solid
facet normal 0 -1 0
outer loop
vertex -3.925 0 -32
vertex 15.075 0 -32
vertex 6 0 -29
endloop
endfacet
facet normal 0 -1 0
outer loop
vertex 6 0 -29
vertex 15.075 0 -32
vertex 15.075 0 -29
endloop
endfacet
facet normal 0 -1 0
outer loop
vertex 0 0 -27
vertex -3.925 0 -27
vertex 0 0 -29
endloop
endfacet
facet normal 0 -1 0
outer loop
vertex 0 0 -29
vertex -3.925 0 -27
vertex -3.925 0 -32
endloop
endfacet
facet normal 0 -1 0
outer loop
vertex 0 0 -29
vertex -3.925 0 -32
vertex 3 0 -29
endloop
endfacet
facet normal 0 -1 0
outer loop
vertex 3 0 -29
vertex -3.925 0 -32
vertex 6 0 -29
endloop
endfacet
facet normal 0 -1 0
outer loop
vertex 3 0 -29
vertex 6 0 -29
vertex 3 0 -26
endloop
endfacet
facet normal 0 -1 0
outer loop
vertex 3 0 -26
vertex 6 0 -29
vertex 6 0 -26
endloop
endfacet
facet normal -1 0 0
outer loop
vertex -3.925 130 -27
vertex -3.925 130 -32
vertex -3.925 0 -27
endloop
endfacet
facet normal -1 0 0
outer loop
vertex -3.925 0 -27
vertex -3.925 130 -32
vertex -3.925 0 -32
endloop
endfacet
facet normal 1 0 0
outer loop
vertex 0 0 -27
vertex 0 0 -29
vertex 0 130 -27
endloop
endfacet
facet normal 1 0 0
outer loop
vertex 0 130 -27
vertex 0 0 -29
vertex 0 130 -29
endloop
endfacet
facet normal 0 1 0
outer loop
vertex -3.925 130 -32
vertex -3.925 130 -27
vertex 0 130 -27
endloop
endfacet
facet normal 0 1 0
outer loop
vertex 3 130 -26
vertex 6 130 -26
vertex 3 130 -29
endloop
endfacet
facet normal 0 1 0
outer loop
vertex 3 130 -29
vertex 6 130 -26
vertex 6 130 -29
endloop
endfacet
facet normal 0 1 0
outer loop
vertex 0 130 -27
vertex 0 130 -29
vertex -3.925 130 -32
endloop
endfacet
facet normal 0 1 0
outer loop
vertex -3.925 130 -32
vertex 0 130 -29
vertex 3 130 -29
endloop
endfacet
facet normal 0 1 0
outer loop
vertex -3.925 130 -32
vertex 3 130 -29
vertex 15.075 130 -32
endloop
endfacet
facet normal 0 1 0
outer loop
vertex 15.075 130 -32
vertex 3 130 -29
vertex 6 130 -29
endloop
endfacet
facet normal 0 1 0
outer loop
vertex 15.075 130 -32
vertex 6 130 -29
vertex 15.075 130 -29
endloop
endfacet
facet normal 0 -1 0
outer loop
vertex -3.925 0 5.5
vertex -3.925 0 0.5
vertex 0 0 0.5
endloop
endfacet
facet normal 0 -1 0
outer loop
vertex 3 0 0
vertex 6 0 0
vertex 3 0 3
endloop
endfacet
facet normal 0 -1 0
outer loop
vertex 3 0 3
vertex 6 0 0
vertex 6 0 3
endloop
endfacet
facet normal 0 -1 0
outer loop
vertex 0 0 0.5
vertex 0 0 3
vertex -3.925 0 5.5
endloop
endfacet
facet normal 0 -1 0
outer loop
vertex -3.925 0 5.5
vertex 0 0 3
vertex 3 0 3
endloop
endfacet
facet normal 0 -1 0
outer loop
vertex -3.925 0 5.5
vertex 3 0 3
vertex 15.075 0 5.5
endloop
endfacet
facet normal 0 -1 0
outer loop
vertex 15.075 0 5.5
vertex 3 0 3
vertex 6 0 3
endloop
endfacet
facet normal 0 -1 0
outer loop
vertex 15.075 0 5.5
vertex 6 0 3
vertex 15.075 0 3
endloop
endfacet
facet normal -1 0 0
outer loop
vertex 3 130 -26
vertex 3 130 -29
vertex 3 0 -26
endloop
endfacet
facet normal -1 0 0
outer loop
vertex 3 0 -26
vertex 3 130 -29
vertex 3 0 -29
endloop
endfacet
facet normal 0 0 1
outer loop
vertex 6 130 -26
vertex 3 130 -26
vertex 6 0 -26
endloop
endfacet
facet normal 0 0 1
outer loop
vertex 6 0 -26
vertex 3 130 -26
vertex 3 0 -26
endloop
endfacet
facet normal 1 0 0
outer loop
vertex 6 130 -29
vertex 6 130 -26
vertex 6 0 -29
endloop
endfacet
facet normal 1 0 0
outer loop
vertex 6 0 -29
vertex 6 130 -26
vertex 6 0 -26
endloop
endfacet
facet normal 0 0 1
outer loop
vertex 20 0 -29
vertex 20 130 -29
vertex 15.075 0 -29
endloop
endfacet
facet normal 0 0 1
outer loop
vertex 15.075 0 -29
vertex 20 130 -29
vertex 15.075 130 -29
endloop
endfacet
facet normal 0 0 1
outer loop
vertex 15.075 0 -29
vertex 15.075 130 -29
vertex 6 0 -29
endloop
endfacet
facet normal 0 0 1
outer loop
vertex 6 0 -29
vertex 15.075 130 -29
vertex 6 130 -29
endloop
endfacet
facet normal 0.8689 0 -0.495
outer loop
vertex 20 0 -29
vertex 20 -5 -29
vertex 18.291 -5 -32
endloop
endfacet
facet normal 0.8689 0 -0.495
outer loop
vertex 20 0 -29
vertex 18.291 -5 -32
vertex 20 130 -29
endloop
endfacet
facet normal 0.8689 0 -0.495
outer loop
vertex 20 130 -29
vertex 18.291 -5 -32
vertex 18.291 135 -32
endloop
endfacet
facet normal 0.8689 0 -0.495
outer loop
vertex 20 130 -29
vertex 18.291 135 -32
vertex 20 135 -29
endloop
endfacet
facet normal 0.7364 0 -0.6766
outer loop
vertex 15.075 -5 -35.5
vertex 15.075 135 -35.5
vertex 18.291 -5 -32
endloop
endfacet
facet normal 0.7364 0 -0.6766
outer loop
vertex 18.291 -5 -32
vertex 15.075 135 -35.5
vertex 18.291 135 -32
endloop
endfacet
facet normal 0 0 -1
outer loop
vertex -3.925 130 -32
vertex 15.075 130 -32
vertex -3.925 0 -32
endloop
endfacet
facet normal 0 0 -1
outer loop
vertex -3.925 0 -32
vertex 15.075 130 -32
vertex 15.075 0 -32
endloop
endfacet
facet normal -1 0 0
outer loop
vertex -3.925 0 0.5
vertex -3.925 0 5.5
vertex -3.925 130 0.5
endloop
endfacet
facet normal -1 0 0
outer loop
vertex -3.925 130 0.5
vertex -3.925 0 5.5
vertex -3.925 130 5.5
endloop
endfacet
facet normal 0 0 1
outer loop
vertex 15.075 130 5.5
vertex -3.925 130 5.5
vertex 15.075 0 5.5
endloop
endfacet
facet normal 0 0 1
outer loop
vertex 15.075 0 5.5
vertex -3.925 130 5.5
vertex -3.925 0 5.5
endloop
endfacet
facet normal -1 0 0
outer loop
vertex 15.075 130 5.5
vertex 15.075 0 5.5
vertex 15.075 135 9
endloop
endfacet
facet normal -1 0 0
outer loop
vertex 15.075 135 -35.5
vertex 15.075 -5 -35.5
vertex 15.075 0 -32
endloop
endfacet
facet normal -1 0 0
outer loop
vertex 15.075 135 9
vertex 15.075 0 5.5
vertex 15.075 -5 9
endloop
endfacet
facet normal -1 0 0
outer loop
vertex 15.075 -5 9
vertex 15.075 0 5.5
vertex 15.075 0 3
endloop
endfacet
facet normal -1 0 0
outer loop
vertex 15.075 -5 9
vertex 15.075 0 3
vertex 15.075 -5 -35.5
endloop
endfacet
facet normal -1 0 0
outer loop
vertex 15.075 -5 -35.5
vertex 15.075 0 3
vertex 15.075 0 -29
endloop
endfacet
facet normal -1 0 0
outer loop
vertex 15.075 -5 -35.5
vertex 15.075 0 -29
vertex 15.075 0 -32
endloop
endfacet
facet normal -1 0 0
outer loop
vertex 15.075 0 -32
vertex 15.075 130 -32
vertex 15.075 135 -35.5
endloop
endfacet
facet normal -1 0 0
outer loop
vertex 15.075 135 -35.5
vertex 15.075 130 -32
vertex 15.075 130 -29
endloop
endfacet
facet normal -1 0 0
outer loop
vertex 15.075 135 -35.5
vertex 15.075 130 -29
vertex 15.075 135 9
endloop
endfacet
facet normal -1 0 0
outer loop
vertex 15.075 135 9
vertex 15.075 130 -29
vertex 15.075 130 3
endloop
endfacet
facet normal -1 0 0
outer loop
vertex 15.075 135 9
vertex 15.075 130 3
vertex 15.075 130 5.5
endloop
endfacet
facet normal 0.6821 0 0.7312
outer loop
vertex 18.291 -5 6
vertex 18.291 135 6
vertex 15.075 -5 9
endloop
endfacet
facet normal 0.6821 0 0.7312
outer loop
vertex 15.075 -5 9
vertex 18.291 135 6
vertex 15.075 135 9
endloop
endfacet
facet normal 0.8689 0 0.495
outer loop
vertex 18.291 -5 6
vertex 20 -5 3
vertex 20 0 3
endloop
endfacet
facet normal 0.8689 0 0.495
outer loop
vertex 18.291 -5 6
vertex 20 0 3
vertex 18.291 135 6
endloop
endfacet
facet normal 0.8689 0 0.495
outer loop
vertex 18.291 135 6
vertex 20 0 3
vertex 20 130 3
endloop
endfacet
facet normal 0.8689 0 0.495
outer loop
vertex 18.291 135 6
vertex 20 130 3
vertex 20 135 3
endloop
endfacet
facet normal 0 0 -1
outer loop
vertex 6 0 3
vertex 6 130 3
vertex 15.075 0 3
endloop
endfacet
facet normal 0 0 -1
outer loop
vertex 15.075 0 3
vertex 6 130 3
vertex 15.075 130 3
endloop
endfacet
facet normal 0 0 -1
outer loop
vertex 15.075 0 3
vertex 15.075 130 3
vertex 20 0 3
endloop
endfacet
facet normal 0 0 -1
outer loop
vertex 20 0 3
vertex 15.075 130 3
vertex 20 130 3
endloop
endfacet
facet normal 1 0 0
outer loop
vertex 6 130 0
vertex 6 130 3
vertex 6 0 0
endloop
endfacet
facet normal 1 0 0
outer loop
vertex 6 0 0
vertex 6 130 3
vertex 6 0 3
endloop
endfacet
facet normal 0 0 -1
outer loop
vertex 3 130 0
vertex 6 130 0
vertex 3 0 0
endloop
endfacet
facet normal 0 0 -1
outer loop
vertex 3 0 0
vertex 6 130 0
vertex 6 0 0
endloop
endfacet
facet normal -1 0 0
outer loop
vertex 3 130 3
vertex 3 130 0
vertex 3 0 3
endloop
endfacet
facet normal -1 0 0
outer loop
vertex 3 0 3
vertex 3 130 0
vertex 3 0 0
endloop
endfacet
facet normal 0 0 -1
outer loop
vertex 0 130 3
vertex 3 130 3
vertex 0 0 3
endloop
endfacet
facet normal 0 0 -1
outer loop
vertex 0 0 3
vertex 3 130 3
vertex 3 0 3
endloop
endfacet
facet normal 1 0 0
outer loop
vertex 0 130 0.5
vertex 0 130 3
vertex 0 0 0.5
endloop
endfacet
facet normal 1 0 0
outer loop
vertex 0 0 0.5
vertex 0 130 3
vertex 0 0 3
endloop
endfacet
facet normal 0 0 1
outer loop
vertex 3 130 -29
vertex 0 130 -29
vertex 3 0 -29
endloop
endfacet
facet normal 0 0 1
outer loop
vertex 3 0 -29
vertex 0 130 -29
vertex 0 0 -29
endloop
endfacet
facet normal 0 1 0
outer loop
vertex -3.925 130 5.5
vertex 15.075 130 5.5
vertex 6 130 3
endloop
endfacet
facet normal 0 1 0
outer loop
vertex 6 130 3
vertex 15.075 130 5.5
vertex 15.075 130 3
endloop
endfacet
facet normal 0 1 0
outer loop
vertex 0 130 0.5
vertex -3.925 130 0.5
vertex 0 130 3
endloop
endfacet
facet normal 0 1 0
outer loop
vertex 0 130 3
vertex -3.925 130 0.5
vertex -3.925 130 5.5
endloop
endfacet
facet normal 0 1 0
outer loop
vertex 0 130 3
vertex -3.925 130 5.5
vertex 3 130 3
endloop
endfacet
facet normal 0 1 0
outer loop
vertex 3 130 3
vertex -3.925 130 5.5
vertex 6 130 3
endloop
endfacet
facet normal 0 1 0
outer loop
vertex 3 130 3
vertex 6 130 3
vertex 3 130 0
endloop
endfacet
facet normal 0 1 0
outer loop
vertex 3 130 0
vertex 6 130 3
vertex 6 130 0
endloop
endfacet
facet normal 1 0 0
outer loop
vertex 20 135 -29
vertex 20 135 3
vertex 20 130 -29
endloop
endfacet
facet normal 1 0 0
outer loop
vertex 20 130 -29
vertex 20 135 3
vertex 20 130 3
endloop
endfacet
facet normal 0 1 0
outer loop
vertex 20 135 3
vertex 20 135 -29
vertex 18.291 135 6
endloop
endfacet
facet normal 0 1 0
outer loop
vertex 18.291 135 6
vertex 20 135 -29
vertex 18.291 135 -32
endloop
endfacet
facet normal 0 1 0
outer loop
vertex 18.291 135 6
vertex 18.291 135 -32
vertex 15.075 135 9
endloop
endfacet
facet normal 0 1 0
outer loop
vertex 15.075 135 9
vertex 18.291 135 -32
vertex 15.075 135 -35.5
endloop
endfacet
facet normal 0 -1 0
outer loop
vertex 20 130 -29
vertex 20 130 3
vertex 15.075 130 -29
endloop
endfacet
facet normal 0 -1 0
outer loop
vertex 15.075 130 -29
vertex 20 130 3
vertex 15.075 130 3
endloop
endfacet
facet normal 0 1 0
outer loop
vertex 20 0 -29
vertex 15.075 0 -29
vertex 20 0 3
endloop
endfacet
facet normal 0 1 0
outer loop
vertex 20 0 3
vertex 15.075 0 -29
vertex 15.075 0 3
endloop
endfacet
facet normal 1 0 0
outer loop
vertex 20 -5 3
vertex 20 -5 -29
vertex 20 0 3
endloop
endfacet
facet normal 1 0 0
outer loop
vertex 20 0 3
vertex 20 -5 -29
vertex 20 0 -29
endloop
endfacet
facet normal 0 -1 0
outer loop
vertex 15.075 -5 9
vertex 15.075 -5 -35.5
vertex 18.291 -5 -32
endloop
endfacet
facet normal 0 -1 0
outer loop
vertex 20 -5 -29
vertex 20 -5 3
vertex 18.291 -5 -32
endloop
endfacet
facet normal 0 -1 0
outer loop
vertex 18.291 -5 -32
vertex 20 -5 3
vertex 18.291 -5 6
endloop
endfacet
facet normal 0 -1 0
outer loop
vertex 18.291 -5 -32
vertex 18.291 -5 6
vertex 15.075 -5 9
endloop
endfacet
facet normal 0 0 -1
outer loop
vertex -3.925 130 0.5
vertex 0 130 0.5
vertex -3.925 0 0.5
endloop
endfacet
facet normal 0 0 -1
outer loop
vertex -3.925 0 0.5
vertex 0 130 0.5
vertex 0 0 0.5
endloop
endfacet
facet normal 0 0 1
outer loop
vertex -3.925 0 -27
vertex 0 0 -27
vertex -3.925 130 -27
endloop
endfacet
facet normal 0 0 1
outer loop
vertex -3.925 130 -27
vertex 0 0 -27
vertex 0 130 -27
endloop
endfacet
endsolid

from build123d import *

# Parameters (mm, degrees)
BOSS_EXTRUDE2_DEPTH = 130
BOSS_EXTRUDE3_DEPTH = 5
BOSS_EXTRUDE4_DEPTH = 5
CUT_EXTRUDE2_DEPTH  = 6


with BuildPart() as part:
    # Sketch1 → Boss-Extrude2 (new body)
    with BuildSketch(Plane(origin=(0, 0, 0), x_dir=(1, 0, 0), z_dir=(0, 1, 0))):
        Polygon((0, -3), (0, 29), (3, 29), (3, 26), (6, 26), (6, 29), (20, 29), (18.290622359, 32), (15.075355057, 35.5), (15.075355057, 32), (-3.924644943, 32), (-3.924644943, -5.5), (15.075355057, -5.5), (15.075355057, -9), (18.290622359, -6), (20, -3), (6, -3), (6, 0), (3, 0), (3, -3), align=None)
    extrude(amount=BOSS_EXTRUDE2_DEPTH)

    # Sketch2 → Boss-Extrude3 (add)
    with BuildSketch(Plane(origin=(0, 130, 0), x_dir=(1, 0, 0), z_dir=(0, 1, 0))):
        Polygon((15.075355057, 35.5), (15.075355057, -9), (18.290622359, -6), (20, -3), (20, 29), (18.290622359, 32), align=None)
    extrude(amount=BOSS_EXTRUDE3_DEPTH)

    # Sketch3 → Boss-Extrude4 (add)
    with BuildSketch(Plane.XZ):
        Polygon((15.075355057, 9), (15.075355057, -35.5), (18.290622359, -32), (20, -29), (20, 3), (18.290622359, 6), align=None)
    extrude(amount=BOSS_EXTRUDE4_DEPTH)

    # Sketch4 → Cut-Extrude2 (cut)
    with BuildSketch(Plane.ZY.offset(3.924644943)):
        Polygon((0.5, 5), (0.5, 125), (0.5, 130), (-27, 130), (-27, 125), (-27, 5), (-27, 0), (0.5, 0), align=None)
    extrude(amount=-CUT_EXTRUDE2_DEPTH, mode=Mode.SUBTRACT)


solid = part.part
